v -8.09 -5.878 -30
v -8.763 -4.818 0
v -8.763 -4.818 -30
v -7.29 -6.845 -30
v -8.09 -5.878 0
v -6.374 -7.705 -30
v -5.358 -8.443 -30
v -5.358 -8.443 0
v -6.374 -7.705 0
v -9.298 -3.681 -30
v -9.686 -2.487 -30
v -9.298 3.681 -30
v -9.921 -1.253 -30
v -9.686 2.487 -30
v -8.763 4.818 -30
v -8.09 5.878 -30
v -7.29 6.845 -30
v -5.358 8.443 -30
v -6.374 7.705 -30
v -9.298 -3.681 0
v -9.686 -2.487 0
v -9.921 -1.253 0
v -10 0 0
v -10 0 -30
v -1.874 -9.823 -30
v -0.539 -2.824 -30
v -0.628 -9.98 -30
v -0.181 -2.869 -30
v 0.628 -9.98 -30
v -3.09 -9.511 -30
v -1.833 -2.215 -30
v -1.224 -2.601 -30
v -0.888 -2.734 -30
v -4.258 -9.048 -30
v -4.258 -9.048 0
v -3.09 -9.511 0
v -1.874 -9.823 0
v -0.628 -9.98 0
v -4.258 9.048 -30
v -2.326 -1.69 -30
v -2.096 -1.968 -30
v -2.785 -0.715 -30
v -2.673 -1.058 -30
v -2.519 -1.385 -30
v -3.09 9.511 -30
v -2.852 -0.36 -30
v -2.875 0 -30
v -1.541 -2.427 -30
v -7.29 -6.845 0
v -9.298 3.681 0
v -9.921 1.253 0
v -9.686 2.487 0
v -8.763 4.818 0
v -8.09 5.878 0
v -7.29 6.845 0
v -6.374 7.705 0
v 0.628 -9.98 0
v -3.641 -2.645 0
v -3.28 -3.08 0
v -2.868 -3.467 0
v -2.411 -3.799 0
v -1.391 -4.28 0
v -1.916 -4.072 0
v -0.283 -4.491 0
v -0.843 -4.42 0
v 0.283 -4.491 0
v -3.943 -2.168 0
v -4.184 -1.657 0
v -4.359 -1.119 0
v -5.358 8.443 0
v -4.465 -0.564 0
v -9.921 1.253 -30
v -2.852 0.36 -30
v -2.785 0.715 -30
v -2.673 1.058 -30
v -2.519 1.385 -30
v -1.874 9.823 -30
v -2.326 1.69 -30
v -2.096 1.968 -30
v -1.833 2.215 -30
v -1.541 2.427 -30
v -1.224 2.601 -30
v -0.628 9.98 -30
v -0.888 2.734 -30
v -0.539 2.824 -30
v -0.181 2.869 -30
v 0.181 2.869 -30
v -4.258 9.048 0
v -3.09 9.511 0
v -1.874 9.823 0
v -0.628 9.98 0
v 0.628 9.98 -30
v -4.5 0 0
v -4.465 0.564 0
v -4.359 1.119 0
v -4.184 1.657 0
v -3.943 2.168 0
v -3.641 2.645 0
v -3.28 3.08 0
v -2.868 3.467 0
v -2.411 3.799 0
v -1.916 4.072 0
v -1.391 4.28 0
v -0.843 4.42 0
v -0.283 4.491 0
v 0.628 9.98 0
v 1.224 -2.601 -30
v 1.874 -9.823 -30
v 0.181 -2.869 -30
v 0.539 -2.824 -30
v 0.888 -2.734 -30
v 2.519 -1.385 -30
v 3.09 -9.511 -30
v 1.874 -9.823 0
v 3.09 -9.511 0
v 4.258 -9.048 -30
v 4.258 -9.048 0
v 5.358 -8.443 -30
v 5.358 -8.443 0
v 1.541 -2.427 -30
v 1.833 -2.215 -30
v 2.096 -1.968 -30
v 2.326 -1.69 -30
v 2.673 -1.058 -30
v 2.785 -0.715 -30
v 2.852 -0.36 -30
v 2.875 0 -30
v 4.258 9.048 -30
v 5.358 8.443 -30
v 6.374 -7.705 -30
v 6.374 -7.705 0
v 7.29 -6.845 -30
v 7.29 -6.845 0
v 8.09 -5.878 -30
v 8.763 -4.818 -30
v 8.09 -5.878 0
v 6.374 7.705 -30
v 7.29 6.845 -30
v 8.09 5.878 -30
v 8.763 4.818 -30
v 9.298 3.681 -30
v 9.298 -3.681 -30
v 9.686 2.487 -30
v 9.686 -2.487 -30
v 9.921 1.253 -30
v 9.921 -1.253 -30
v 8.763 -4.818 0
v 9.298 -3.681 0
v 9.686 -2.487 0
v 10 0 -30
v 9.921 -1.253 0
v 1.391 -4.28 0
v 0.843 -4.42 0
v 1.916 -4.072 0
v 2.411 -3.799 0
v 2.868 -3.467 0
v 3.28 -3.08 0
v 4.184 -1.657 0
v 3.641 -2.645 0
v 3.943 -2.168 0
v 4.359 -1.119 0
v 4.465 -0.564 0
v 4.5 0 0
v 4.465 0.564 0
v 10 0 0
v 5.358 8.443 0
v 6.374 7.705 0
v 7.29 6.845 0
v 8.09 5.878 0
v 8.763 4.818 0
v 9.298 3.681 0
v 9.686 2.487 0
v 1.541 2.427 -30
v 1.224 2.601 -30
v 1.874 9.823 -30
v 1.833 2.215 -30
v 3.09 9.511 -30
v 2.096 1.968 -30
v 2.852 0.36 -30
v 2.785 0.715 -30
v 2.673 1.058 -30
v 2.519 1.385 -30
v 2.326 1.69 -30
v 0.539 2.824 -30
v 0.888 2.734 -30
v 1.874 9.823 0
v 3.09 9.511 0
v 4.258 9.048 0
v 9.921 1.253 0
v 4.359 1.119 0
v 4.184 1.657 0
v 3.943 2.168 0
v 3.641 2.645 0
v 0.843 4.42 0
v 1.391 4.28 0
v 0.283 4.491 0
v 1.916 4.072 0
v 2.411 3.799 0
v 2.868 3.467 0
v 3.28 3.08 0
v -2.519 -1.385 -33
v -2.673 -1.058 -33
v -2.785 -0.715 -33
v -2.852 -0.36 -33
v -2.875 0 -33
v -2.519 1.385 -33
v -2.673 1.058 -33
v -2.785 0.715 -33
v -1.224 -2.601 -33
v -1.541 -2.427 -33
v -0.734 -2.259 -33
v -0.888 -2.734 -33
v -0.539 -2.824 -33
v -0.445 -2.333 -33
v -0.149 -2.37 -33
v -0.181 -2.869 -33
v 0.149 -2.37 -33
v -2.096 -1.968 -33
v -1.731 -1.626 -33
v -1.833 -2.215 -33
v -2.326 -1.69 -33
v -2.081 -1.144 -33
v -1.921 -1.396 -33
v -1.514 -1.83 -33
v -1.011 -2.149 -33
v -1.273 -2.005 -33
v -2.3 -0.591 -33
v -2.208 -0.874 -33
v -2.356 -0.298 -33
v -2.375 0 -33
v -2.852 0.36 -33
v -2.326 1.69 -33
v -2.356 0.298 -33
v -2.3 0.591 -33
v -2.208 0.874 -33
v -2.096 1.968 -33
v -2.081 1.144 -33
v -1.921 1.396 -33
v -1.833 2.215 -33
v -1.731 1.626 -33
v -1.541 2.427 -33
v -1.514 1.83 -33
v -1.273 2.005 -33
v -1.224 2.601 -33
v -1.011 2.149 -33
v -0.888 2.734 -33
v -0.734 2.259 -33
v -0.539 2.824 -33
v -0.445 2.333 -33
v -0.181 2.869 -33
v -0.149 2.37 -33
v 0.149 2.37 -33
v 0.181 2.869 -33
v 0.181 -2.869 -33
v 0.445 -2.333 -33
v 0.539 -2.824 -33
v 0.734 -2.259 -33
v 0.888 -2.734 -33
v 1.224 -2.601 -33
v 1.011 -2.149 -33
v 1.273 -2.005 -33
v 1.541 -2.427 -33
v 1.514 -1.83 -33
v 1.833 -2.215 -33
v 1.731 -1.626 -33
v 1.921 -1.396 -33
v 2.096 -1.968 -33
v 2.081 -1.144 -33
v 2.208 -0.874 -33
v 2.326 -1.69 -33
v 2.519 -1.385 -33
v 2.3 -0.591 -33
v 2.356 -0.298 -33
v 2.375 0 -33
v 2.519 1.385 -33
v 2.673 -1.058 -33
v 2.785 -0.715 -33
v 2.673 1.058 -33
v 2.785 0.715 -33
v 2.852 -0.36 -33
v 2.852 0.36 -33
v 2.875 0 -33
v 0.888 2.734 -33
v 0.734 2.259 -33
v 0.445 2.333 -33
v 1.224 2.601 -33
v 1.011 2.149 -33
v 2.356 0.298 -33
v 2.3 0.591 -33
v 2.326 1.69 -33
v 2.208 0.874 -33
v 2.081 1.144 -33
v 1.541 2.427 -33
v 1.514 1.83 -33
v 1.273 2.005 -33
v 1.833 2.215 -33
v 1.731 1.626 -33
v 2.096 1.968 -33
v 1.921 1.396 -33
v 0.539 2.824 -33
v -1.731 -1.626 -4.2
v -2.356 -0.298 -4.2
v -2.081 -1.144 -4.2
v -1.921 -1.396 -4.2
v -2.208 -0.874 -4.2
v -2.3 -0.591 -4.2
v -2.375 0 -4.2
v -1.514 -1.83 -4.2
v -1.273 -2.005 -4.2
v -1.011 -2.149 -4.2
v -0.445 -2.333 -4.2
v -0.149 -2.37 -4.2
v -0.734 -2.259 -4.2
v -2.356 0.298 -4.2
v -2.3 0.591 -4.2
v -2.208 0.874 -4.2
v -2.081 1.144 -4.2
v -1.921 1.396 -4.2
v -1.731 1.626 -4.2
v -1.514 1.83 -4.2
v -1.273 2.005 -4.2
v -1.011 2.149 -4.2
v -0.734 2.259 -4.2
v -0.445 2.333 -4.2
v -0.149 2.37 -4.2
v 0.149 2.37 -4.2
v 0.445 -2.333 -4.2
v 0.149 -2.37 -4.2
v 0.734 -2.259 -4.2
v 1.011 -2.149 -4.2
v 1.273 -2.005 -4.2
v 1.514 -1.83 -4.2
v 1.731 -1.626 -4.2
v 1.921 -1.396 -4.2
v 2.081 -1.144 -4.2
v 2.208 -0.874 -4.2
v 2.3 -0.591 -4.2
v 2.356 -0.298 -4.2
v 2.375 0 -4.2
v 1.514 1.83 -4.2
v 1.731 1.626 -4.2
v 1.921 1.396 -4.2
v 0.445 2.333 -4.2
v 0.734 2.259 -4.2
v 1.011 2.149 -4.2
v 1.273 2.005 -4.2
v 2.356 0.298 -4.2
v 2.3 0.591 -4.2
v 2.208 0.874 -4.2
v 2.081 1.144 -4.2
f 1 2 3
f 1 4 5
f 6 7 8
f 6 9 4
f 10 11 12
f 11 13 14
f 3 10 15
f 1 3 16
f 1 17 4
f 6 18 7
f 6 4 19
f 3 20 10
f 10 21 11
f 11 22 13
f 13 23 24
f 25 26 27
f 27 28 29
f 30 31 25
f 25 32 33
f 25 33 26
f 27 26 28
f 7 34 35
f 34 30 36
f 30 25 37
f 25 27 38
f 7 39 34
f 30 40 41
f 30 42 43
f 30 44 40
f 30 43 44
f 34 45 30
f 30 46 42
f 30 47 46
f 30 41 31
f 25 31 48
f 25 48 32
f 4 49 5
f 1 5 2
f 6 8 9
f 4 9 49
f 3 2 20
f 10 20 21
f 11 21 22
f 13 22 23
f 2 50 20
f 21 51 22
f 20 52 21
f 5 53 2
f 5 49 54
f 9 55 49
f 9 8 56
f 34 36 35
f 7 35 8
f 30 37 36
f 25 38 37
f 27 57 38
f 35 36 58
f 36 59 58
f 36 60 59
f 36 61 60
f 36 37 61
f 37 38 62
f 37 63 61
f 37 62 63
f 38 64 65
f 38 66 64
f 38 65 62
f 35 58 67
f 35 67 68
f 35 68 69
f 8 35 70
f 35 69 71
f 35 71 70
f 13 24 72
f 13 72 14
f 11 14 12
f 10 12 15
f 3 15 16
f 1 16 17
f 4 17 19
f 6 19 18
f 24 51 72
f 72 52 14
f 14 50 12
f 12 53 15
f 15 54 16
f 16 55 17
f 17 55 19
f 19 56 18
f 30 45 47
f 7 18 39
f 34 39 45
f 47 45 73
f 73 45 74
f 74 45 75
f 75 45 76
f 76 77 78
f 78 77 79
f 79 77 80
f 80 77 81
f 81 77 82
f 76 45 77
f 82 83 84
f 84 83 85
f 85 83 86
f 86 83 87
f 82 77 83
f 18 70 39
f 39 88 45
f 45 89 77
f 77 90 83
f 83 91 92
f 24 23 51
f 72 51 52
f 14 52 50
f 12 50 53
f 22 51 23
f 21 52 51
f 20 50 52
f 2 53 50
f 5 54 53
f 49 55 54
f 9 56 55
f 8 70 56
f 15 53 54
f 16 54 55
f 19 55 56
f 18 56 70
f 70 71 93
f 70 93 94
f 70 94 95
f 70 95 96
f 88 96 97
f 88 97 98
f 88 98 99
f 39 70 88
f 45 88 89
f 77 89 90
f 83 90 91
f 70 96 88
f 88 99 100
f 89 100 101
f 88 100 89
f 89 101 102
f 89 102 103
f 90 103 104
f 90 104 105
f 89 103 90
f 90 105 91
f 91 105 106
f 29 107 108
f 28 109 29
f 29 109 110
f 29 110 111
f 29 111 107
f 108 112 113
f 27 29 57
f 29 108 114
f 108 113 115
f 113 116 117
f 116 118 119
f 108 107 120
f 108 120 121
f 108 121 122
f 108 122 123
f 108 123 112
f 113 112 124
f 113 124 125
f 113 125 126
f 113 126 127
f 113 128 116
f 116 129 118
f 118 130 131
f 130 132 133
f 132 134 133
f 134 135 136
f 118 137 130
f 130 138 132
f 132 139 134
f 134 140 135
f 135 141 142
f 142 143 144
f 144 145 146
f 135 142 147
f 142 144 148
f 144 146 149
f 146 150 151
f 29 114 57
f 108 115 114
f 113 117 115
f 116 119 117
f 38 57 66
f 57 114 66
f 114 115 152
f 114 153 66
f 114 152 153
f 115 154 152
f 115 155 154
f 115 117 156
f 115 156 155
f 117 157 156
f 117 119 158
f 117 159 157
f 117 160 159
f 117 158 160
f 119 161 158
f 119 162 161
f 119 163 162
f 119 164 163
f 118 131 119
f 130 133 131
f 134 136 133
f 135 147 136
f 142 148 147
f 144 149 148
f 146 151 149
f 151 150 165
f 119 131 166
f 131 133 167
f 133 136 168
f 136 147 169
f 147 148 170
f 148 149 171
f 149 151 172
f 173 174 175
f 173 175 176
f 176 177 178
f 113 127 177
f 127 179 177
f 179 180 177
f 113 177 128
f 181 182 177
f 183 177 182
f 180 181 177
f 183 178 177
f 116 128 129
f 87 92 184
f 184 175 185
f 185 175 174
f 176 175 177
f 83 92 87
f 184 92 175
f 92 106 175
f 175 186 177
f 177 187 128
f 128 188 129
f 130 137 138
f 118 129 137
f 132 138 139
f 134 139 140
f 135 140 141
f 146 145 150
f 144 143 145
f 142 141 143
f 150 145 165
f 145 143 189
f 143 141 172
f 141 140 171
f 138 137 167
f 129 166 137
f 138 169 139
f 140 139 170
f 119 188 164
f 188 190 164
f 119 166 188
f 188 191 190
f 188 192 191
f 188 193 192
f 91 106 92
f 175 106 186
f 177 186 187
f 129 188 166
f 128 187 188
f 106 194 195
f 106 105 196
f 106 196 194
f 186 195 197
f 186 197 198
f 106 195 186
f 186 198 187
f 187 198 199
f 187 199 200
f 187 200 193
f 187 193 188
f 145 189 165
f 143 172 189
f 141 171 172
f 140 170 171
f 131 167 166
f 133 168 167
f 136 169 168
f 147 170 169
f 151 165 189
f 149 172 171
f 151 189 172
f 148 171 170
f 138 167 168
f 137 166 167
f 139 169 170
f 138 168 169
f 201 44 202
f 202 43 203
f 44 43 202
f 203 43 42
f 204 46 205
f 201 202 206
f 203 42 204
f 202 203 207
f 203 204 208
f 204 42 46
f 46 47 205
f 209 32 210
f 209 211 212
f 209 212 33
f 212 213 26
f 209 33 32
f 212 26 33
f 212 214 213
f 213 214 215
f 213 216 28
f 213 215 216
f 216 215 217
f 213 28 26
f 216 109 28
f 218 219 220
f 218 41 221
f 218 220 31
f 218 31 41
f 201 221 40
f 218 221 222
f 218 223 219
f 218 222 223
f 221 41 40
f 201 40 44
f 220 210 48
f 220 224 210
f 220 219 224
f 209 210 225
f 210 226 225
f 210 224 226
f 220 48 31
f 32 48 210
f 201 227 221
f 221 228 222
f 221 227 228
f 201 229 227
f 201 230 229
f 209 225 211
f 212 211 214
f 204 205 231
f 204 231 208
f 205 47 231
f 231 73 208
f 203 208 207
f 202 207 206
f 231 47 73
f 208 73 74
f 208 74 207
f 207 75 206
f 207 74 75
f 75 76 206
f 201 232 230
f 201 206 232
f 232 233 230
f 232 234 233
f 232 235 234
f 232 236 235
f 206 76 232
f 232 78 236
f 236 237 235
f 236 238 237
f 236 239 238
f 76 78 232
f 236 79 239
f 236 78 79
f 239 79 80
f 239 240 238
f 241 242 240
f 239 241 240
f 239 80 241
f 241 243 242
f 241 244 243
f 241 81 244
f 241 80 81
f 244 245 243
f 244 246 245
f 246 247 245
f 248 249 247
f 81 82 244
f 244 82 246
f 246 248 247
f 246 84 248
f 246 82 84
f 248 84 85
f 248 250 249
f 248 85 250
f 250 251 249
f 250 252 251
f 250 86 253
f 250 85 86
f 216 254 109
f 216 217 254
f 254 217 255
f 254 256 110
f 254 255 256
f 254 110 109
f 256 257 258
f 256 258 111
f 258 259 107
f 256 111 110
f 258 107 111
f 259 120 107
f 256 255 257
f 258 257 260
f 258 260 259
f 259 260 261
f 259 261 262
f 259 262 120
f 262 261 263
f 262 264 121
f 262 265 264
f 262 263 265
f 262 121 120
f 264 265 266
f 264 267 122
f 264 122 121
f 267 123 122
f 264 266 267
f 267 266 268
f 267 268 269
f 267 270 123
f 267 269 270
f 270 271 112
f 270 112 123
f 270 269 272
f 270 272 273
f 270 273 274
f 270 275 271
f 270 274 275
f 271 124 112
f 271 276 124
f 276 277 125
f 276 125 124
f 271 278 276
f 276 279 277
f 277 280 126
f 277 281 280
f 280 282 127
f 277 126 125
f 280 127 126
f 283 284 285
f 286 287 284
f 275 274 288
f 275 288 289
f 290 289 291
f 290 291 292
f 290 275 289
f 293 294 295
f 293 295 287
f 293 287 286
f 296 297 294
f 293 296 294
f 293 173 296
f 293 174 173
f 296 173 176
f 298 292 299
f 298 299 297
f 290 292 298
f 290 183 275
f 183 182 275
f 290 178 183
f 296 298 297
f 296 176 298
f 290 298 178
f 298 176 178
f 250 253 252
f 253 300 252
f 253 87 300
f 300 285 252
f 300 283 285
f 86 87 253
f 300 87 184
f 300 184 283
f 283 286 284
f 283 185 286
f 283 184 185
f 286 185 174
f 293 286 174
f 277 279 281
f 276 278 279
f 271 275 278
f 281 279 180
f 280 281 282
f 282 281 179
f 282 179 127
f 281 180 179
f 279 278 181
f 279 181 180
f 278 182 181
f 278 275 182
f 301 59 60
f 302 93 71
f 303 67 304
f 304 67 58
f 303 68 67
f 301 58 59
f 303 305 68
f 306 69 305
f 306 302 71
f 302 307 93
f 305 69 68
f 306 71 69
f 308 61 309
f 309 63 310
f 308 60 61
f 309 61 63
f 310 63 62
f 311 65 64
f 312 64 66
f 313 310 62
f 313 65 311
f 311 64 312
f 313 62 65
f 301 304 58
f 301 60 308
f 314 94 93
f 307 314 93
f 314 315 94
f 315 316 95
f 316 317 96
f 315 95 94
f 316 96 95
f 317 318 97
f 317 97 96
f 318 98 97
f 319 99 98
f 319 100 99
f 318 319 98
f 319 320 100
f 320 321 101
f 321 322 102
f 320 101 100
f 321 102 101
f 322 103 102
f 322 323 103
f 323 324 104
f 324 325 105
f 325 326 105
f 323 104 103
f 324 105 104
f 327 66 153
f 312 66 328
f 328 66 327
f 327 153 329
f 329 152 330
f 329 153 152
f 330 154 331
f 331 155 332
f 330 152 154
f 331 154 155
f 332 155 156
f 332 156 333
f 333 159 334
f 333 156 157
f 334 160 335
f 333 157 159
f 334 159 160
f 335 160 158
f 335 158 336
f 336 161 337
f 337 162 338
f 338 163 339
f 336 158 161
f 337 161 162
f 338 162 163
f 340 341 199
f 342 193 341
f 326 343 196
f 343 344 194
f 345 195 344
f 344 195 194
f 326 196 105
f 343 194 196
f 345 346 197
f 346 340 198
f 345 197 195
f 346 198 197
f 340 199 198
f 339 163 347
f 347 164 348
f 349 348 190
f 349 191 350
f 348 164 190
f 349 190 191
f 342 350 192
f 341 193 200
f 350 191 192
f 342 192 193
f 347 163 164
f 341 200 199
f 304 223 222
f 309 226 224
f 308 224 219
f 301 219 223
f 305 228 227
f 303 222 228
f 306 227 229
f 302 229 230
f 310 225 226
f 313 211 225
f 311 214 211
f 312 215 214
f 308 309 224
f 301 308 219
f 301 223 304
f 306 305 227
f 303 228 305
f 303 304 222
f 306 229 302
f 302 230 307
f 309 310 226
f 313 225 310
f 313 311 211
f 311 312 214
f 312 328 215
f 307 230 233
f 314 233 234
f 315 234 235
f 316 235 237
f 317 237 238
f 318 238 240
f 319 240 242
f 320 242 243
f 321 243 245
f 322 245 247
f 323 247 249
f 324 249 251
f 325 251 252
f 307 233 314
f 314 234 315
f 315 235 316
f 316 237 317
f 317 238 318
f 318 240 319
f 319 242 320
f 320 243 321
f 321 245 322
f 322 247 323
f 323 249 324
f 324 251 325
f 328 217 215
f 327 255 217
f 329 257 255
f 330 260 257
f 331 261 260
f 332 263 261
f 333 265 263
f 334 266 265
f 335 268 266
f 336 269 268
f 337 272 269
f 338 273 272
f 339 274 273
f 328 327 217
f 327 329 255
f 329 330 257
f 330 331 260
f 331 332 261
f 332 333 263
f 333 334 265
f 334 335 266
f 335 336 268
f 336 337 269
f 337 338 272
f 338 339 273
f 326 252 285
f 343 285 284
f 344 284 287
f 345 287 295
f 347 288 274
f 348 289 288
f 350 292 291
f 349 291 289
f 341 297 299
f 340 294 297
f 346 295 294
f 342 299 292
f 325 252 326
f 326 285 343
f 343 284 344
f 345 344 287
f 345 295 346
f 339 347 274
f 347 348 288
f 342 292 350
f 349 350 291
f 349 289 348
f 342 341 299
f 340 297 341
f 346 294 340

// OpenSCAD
$fn = 50;


difference() {
	union() {
		translate(v = [0, 0, -30.0000000000]) {
			cylinder(h = 30, r = 10.0000000000);
		}
		#translate(v = [0, 0, -33.0000000000]) {
			cylinder(h = 33, r = 2.8750000000);
		}
	}
	union() {
		translate(v = [0, 0, 0]) {
			rotate(a = [0, 0, 0]) {
				difference() {
					union() {
						translate(v = [0, 0, -33.0000000000]) {
							cylinder(h = 33, r = 2.2500000000);
						}
						translate(v = [0, 0, -4.2000000000]) {
							cylinder(h = 4.2000000000, r1 = 2.3750000000, r2 = 4.5000000000);
						}
						translate(v = [0, 0, -33.0000000000]) {
							cylinder(h = 33, r = 2.3750000000);
						}
						translate(v = [0, 0, -33.0000000000]) {
							cylinder(h = 33, r = 2.2500000000);
						}
					}
					union();
				}
			}
		}
	}
}
